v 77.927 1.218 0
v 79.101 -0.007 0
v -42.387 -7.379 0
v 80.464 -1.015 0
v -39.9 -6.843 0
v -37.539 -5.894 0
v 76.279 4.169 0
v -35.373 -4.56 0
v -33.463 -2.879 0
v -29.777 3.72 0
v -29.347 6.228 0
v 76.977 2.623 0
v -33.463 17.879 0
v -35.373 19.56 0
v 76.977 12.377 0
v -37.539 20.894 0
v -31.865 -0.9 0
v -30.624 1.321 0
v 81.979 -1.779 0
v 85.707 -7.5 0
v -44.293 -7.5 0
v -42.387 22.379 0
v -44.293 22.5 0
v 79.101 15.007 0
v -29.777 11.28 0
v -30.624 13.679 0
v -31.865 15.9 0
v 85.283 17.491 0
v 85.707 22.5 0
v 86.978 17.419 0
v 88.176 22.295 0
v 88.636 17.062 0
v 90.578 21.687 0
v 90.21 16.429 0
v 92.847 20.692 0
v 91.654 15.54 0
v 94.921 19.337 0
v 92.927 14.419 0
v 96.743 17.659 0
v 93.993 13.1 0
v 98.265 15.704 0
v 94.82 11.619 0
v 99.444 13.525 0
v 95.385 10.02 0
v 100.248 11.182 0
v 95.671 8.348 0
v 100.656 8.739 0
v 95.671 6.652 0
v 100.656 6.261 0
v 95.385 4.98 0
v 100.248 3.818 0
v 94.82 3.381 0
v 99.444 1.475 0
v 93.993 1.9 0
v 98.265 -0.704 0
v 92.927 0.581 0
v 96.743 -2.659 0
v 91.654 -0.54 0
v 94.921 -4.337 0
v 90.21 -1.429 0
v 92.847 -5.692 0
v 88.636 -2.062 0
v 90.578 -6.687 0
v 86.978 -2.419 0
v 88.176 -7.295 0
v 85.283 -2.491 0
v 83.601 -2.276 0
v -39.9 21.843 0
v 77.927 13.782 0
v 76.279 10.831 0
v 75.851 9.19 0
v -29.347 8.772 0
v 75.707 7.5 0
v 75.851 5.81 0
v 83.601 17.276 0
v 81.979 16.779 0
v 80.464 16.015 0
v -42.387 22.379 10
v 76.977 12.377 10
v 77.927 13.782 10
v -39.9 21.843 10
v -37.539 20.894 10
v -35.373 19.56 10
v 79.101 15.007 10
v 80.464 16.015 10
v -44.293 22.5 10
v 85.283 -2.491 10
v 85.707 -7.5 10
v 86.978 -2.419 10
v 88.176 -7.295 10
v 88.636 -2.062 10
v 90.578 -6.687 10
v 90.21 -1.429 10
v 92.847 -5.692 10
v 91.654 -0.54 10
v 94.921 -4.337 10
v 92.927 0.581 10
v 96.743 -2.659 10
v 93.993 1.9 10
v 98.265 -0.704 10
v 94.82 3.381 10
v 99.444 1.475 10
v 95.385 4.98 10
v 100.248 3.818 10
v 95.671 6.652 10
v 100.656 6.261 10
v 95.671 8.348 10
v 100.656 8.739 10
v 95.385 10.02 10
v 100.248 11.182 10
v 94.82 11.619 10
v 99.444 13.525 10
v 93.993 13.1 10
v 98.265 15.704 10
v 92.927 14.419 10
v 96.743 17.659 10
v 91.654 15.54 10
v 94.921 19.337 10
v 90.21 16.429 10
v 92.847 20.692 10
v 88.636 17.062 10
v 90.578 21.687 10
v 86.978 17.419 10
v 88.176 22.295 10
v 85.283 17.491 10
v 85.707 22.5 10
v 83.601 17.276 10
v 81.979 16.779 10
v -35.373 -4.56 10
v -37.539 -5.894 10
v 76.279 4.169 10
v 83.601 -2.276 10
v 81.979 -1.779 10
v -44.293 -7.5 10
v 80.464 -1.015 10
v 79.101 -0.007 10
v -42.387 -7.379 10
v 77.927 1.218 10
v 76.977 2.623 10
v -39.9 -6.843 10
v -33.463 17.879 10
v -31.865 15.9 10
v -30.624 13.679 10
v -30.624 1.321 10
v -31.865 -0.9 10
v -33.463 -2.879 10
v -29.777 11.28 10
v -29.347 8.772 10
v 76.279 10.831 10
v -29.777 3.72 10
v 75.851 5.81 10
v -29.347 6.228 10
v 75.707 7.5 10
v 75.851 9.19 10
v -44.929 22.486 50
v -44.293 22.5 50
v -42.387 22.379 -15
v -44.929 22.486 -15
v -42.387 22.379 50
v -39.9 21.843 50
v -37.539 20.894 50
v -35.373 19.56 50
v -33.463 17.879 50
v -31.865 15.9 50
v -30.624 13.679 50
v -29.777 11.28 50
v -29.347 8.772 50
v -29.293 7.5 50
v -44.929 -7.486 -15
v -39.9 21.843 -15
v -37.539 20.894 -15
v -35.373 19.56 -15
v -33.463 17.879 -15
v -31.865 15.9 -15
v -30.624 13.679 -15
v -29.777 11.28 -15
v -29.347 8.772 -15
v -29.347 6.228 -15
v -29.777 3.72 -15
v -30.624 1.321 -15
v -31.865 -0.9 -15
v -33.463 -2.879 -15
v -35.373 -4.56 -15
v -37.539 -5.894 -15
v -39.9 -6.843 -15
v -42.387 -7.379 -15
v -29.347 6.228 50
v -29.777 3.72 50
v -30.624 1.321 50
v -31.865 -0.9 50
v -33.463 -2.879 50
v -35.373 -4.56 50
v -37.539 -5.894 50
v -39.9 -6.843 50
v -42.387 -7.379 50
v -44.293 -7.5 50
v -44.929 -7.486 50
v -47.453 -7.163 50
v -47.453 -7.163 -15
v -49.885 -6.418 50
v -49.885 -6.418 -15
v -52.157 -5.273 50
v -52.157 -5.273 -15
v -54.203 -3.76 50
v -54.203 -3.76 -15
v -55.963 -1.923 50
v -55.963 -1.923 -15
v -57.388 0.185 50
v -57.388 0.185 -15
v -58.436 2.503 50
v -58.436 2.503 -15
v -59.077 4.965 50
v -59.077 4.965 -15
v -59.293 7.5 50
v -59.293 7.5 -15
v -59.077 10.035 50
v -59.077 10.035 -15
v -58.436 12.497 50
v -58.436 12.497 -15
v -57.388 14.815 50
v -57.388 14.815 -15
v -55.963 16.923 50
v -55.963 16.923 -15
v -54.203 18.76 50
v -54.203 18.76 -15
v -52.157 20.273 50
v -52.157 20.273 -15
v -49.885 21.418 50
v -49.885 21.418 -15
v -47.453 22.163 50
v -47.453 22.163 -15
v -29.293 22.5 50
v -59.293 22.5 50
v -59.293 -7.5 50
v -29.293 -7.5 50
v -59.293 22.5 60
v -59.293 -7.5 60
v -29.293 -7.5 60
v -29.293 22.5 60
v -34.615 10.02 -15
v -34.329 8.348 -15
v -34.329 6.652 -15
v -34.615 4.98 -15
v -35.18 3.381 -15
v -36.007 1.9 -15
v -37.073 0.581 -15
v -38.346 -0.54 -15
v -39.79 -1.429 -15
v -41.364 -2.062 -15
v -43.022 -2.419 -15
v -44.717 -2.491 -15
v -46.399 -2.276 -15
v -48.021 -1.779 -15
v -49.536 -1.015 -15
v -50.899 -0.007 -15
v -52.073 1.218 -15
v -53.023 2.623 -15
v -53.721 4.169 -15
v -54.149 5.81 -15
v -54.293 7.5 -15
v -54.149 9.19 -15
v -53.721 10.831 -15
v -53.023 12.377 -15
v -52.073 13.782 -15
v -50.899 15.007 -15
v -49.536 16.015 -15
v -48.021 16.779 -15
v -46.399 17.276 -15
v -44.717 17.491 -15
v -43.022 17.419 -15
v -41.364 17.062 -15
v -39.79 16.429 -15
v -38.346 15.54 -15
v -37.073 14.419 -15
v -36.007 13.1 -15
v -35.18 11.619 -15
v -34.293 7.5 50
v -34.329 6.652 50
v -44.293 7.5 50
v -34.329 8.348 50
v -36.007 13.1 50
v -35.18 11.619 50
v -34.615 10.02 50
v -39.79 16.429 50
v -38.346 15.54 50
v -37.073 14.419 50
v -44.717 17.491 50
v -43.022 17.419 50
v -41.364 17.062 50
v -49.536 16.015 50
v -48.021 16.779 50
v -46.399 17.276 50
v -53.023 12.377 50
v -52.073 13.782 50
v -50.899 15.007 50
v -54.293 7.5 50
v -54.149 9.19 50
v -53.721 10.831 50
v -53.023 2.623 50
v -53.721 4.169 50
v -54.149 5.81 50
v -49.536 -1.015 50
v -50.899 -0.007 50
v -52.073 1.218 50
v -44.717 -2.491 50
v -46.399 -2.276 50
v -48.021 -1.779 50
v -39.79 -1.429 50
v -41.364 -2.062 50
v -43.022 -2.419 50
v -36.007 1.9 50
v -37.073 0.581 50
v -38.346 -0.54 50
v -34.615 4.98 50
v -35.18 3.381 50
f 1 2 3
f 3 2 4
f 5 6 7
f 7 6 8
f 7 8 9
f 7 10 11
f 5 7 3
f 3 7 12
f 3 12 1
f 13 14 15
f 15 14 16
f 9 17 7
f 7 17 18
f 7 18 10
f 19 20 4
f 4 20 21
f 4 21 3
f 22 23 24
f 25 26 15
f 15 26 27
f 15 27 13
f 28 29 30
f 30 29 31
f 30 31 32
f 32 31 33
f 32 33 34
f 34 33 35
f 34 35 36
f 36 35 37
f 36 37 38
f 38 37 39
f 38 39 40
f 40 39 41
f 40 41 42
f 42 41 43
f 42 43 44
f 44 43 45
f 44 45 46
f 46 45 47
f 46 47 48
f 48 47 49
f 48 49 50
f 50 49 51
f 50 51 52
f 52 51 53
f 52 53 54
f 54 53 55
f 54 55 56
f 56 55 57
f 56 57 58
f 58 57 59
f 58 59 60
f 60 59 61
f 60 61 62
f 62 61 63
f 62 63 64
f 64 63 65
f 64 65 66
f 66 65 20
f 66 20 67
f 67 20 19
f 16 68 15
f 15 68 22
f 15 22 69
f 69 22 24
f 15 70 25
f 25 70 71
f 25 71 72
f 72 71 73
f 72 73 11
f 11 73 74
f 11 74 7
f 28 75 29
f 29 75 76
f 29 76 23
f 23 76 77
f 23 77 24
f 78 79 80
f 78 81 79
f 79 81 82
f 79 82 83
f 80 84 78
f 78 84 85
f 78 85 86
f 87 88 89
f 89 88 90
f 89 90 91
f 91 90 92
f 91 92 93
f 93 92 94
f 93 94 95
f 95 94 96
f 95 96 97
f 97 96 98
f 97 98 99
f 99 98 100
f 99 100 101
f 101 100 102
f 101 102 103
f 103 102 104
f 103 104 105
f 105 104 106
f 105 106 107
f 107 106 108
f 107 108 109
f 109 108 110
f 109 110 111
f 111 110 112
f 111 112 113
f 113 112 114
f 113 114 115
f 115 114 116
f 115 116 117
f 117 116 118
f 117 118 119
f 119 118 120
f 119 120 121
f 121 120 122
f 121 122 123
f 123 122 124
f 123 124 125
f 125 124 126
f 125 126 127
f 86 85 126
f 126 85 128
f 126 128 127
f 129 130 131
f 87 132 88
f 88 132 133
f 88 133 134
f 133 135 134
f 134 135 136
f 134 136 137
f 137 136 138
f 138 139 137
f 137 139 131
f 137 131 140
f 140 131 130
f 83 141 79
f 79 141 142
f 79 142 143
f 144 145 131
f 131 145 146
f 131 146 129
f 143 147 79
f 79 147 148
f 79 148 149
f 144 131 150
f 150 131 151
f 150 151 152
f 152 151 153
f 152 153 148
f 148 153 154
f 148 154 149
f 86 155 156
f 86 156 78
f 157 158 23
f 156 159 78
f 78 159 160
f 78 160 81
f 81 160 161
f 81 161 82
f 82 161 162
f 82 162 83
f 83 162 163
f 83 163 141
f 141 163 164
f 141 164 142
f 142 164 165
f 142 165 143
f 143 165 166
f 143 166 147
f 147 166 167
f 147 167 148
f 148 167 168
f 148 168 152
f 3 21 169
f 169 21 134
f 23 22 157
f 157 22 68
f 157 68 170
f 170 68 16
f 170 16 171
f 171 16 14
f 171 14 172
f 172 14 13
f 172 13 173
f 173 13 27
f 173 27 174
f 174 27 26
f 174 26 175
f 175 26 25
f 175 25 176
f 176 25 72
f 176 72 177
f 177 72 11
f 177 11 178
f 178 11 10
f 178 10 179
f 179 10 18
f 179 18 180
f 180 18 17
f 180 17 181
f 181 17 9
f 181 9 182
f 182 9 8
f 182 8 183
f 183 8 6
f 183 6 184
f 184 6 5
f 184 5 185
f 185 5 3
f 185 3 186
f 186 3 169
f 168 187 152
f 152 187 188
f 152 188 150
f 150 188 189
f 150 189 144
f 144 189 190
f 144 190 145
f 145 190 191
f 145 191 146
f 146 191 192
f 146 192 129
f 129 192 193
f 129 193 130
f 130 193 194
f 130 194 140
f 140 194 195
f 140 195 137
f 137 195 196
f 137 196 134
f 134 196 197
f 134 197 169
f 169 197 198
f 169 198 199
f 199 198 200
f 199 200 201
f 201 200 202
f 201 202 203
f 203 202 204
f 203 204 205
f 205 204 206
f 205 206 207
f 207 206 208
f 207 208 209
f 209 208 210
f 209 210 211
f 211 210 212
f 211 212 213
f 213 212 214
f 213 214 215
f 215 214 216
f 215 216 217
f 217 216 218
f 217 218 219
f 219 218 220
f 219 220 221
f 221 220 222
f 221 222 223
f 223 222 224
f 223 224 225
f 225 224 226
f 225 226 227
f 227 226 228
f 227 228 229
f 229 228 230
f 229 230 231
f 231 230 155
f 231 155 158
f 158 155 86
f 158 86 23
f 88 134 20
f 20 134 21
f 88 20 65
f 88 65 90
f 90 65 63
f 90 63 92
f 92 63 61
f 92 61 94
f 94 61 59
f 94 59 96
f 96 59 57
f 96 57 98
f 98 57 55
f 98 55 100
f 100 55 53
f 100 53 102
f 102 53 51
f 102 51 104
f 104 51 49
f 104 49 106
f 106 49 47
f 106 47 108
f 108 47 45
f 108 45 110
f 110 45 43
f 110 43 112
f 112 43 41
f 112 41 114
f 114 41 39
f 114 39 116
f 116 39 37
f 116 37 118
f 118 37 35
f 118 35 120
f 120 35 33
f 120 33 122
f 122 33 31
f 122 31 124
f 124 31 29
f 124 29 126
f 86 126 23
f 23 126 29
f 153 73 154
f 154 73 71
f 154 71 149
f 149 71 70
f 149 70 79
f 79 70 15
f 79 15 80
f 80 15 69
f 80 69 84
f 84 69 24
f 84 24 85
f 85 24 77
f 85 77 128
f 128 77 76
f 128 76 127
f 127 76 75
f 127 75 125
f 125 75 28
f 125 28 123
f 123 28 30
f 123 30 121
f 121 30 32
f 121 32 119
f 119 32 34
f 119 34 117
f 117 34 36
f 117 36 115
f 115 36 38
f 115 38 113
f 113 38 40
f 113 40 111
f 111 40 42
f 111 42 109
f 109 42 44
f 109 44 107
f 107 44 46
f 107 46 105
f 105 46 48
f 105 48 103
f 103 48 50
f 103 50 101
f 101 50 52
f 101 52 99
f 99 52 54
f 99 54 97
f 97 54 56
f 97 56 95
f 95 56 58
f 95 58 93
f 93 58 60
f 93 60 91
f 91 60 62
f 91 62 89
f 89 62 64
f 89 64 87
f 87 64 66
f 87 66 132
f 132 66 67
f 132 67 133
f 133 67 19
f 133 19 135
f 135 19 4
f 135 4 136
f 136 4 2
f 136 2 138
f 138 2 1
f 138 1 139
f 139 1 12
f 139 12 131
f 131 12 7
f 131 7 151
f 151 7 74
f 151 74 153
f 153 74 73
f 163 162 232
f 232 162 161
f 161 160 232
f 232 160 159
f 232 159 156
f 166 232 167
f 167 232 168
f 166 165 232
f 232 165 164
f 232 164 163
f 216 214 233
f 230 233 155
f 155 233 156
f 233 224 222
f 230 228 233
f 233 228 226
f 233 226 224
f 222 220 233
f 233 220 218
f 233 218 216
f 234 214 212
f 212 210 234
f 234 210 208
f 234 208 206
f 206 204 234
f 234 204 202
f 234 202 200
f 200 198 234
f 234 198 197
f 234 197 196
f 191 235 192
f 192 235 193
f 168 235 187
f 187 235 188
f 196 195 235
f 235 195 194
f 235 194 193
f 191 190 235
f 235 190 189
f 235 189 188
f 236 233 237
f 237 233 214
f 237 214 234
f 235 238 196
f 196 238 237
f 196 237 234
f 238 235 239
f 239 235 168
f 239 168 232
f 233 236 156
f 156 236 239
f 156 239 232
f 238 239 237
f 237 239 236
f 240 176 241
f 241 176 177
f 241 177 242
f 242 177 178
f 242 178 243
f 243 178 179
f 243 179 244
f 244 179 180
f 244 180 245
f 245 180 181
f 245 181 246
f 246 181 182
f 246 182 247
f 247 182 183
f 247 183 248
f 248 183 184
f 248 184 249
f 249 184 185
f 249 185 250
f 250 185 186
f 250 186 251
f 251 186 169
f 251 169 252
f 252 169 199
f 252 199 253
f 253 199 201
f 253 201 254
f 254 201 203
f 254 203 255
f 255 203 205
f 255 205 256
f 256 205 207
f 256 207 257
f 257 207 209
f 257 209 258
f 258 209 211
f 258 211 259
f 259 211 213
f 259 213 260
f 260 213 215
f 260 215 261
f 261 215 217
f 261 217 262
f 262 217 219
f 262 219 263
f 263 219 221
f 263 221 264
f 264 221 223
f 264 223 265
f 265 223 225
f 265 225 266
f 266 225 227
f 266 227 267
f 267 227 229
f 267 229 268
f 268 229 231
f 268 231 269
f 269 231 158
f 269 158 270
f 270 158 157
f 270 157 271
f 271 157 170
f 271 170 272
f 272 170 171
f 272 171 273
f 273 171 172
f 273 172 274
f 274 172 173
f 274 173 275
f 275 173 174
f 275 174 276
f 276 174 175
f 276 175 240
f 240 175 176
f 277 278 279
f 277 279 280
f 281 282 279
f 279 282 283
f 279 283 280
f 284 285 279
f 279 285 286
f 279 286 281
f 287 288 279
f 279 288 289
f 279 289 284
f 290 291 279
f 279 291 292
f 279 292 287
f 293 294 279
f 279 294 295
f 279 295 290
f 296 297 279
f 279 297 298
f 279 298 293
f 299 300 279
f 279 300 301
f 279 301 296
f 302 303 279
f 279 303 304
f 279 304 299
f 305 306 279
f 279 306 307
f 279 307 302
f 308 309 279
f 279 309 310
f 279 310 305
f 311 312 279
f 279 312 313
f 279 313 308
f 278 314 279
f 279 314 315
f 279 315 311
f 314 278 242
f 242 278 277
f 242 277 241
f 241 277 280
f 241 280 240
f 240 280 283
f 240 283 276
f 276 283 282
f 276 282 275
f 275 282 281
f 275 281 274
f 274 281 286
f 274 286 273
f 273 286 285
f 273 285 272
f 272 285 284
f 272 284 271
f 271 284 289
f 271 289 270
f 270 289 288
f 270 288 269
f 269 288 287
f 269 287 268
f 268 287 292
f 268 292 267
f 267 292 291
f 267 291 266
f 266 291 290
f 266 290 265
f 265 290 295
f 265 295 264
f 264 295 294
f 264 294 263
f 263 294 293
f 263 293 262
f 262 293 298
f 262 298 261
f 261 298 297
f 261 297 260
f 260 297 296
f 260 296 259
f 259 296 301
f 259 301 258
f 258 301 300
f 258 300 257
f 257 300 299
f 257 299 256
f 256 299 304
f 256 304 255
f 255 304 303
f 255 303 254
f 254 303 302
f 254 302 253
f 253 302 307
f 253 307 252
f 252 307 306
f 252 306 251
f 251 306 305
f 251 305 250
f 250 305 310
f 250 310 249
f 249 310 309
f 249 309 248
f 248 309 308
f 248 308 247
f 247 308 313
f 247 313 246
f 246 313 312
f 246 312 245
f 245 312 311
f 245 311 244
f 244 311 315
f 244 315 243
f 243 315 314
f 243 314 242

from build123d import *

# Parameters (mm, degrees)
CROQUIS1_R              = 10
SALIENTE_EXTRUIR1_DEPTH = 10
CROQUIS2_R              = 15
CROQUIS2_R_2            = 10
SALIENTE_EXTRUIR2_DEPTH = 40
CROQUIS3_W              = 30
CROQUIS3_H              = 30
SALIENTE_EXTRUIR3_DEPTH = 10
BOSS_EXTRUDE1_START     = 15
SKETCH1_R               = 15
SKETCH1_R_2             = 10
BOSS_EXTRUDE1_DEPTH     = 15


with BuildPart() as part:
    # Croquis1 → Saliente-Extruir1 (new body)
    with BuildSketch(Plane.XY):
        with BuildLine():
            Line((-44.292513238, 22.5), (85.707486762, 22.5))
            ThreePointArc((85.707486762, 22.5), (100.707486762, 7.5), (85.707486762, -7.5))
            Line((85.707486762, -7.5), (-44.292513238, -7.5))
            ThreePointArc((-44.292513238, -7.5), (-59.292513238, 7.5), (-44.292513238, 22.5))
        make_face()
        with Locations((-44.292513238, 7.5)):
            Circle(CROQUIS1_R, mode=Mode.SUBTRACT)
        with Locations(Location((85.707486762, 7.5, 0), (0, 0, 180))):
            Circle(CROQUIS1_R, mode=Mode.SUBTRACT)
    extrude(amount=SALIENTE_EXTRUIR1_DEPTH)

    # Croquis2 → Saliente-Extruir2 (add)
    with BuildSketch(Plane.XY.offset(10)):
        with Locations(Location((-44.292513238, 7.5, 0), (0, 0, 270))):
            Circle(CROQUIS2_R)
        with Locations((-44.292513238, 7.5)):
            Circle(CROQUIS2_R_2, mode=Mode.SUBTRACT)
    extrude(amount=SALIENTE_EXTRUIR2_DEPTH)

    # Croquis3 → Saliente-Extruir3 (add)
    with BuildSketch(Plane.XY.offset(50)):
        with Locations((-44.292513238, 7.5)):
            Rectangle(CROQUIS3_W, CROQUIS3_H)
    extrude(amount=SALIENTE_EXTRUIR3_DEPTH)

    # Sketch1 → Boss-Extrude1 (add)
    with BuildSketch(Plane(origin=(0, 0, 0), x_dir=(-1, 0, 0), z_dir=(0, 0, -1)).offset(BOSS_EXTRUDE1_START)):
        with Locations((44.292513238, 7.5)):
            Circle(SKETCH1_R)
        with Locations((44.292513238, 7.5)):
            Circle(SKETCH1_R_2, mode=Mode.SUBTRACT)
    extrude(amount=-BOSS_EXTRUDE1_DEPTH)


solid = part.part
